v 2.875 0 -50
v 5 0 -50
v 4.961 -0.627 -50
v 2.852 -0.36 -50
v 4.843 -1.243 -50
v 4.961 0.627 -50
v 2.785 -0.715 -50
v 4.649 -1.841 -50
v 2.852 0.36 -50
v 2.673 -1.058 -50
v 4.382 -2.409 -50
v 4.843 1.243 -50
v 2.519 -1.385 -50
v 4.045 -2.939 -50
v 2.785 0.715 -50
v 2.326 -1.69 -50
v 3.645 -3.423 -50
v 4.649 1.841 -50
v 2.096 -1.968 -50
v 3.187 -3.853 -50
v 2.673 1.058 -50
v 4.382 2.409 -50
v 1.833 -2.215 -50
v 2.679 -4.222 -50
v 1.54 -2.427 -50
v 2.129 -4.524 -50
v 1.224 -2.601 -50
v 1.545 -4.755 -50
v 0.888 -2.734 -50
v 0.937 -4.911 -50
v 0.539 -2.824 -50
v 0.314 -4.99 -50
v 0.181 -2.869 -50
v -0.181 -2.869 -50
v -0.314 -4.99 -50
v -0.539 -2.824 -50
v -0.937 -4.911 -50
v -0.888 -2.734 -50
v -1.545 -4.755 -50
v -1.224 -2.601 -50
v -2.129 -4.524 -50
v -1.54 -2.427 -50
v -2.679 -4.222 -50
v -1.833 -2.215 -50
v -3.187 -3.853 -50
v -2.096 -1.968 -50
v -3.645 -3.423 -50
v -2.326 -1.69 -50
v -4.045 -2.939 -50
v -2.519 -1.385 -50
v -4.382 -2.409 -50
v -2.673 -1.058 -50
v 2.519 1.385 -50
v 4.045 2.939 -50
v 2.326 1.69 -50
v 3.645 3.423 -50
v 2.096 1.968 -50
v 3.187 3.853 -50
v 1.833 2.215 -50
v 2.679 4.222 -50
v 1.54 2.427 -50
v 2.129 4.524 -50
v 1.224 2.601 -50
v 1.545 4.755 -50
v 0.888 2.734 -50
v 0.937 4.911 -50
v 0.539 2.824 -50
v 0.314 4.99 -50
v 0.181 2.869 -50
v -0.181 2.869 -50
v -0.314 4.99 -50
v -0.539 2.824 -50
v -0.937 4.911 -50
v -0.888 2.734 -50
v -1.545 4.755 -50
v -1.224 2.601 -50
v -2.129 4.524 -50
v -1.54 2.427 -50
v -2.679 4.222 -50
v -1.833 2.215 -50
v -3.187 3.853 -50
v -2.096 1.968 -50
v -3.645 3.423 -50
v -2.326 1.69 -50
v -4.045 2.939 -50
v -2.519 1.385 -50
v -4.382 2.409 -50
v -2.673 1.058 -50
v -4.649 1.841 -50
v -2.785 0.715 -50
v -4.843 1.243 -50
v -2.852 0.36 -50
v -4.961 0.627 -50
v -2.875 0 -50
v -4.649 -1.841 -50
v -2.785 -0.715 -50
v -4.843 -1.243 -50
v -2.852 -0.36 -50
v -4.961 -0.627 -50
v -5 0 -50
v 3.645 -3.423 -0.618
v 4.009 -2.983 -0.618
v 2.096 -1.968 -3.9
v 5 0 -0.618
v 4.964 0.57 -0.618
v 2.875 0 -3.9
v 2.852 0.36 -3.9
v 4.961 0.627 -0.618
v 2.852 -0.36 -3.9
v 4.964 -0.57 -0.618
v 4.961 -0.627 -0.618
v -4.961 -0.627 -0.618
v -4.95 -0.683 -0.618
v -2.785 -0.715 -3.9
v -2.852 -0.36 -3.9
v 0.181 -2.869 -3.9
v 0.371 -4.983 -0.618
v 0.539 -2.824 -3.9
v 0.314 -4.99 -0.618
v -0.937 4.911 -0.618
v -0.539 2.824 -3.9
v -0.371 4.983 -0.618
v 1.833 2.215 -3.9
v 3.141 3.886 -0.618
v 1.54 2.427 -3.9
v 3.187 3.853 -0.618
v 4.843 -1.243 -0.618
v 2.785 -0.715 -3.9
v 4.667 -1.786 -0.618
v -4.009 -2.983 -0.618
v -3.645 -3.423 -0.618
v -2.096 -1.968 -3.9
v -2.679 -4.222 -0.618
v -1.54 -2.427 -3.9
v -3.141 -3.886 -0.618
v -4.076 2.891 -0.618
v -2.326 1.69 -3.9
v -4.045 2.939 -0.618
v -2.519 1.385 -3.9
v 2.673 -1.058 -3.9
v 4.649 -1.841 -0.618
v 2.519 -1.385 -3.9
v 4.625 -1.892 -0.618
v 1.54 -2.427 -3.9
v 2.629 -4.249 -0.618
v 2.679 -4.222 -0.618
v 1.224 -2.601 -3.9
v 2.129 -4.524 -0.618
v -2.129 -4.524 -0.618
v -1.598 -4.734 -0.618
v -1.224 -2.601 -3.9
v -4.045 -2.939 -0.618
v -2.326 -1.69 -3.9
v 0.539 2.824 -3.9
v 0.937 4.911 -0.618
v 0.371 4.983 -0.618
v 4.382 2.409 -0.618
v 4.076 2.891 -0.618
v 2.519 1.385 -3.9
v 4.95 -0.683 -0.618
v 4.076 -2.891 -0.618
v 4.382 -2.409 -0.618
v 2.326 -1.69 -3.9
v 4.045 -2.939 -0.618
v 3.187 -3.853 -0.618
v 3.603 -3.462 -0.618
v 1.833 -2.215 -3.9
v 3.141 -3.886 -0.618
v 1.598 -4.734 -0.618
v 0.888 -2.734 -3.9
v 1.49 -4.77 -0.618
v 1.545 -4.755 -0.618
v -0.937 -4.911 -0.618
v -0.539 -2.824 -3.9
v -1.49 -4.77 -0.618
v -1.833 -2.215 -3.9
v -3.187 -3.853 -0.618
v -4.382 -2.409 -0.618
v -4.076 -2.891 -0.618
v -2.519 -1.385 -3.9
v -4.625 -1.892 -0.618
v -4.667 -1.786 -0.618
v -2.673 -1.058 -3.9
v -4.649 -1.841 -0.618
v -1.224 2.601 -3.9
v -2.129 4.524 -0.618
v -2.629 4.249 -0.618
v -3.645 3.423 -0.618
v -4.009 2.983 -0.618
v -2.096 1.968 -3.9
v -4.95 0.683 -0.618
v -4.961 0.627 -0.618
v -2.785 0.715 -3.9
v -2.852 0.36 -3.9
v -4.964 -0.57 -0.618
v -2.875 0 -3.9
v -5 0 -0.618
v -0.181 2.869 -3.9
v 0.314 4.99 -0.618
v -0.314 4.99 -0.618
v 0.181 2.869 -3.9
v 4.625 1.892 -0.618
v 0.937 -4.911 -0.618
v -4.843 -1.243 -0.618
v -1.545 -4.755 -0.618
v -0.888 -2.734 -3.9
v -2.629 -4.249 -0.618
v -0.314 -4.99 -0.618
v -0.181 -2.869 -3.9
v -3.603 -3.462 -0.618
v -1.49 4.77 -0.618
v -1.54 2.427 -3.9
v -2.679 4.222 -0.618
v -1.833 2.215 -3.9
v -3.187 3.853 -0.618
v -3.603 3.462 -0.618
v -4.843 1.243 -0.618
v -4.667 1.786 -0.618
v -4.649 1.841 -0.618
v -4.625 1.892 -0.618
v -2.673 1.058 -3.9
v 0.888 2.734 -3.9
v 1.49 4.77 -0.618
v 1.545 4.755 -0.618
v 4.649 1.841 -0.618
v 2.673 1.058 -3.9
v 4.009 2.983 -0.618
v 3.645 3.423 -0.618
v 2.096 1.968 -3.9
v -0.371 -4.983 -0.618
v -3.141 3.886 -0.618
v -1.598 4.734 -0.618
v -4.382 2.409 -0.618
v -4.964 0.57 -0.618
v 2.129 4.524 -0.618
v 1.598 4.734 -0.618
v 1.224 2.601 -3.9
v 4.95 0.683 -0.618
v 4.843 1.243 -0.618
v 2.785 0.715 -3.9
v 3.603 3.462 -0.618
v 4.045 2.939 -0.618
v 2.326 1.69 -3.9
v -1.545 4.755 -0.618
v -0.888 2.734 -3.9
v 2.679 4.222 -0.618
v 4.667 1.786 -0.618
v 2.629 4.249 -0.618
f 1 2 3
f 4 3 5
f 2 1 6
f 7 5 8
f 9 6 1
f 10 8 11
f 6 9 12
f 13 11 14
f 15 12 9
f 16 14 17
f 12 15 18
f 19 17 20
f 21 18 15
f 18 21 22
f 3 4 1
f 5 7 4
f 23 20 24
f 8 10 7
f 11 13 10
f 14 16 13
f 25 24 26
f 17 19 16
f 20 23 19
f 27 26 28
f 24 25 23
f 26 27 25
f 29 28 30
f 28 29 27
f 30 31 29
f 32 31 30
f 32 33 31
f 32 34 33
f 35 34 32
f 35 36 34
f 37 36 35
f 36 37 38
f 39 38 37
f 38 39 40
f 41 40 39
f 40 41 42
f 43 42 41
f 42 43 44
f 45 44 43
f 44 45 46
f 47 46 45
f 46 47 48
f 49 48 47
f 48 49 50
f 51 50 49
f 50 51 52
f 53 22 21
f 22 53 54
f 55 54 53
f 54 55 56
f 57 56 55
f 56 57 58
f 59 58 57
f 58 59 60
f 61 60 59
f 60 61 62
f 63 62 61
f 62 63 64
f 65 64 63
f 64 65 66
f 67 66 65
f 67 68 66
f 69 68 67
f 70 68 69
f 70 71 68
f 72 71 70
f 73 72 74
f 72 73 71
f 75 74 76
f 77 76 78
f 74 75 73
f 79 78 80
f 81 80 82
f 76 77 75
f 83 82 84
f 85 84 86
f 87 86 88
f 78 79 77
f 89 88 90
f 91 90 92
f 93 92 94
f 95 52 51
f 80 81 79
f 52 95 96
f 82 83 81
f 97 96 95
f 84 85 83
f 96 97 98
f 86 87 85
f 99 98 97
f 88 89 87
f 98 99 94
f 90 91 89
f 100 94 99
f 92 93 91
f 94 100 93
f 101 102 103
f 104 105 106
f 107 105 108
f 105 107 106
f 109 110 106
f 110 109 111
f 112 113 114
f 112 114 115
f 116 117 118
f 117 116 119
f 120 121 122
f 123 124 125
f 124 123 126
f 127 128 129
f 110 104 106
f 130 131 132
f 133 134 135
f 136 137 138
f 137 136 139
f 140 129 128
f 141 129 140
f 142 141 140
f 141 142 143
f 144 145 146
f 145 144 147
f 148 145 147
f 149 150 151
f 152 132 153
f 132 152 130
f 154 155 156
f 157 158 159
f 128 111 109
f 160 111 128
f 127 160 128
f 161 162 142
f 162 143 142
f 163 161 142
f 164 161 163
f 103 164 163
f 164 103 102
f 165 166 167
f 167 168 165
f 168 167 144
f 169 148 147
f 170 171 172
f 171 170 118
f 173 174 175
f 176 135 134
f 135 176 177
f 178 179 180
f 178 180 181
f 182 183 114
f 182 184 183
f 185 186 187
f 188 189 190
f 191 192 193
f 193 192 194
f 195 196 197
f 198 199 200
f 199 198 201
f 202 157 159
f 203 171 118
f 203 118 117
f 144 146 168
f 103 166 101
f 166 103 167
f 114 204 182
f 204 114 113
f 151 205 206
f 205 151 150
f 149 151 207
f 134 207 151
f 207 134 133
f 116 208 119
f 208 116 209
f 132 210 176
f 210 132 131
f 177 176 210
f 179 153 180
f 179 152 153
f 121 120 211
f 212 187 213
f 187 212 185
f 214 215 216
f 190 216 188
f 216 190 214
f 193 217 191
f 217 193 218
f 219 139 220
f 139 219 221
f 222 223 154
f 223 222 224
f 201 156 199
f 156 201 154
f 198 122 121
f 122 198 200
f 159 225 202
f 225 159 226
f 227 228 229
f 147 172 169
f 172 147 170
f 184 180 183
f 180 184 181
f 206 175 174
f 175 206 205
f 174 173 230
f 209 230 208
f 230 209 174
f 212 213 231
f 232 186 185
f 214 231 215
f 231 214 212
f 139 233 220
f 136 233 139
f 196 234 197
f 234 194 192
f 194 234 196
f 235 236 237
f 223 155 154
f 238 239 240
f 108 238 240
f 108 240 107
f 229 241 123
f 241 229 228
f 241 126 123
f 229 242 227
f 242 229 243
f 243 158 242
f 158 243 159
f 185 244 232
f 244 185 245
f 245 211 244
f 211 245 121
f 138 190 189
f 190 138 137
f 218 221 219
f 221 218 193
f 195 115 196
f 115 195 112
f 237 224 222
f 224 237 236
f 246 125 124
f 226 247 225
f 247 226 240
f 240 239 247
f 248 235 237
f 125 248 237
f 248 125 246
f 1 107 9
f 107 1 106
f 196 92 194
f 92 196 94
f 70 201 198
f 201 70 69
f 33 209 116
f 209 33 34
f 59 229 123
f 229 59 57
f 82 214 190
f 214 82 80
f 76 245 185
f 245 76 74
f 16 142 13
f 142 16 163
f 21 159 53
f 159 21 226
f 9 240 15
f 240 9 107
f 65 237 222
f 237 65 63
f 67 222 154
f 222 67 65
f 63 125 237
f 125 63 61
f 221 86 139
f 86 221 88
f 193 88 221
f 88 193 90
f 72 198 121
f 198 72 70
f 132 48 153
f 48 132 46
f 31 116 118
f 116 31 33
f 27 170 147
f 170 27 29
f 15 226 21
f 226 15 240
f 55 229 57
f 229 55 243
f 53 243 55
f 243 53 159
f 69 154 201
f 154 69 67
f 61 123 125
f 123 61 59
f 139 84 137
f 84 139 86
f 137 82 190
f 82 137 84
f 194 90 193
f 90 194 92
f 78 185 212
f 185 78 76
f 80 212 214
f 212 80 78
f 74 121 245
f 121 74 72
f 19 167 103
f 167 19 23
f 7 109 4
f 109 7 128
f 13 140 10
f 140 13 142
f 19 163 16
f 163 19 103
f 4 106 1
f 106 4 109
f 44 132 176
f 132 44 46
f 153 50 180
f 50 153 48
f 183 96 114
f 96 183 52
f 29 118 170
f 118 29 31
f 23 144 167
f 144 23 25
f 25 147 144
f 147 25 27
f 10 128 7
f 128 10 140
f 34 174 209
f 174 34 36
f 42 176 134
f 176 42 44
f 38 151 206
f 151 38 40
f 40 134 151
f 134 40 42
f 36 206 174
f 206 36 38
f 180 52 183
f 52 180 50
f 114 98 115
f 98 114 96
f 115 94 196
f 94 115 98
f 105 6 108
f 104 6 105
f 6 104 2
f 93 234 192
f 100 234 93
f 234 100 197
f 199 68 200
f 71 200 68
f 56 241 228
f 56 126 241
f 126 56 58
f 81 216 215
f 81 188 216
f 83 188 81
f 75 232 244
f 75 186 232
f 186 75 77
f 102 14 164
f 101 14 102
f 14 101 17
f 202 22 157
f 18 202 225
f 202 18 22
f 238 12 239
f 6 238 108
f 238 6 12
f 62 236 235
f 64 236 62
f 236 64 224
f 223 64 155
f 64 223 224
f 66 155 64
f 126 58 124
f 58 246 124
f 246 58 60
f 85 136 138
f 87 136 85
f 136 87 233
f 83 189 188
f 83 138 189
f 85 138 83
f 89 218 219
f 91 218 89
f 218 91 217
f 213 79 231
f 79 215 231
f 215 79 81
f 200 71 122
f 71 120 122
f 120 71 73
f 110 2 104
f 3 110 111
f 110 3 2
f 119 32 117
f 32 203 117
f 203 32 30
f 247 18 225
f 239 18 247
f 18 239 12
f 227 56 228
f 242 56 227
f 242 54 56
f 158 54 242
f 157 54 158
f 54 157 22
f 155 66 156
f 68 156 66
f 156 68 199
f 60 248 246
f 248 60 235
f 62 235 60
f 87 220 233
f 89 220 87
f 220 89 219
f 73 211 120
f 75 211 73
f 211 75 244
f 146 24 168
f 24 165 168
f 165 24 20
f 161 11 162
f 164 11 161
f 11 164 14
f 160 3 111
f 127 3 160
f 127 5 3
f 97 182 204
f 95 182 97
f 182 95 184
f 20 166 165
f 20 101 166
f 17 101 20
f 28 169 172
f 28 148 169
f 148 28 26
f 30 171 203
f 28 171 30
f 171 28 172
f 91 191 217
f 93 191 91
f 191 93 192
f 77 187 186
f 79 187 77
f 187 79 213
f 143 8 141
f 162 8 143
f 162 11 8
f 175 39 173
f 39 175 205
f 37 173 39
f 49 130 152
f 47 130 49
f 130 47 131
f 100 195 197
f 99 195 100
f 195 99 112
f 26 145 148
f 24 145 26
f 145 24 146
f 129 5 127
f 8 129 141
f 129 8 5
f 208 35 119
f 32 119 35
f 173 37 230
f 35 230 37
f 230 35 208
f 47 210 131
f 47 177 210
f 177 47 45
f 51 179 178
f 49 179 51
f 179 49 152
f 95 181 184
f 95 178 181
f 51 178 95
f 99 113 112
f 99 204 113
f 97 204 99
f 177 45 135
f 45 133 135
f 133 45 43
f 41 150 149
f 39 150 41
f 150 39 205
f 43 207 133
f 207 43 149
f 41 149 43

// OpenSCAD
$fn = 50;


difference() {
	union() {
		translate(v = [0, 0, -50.0000000000]) {
			cylinder(h = 50, r = 5.0000000000);
		}
		cylinder(h = 0, r = 8.0000000000);
	}
	union() {
		translate(v = [0, 0, 0]) {
			rotate(a = [0, 0, 0]) {
				difference() {
					union() {
						#translate(v = [0, 0, -50.0000000000]) {
							cylinder(h = 50, r = 2.6000000000);
						}
						#translate(v = [0, 0, -3.9000000000]) {
							cylinder(h = 3.9000000000, r = 5.0000000000, r1 = 2.8750000000, r2 = 5.4000000000);
						}
						#translate(v = [0, 0, -50.0000000000]) {
							cylinder(h = 50, r = 2.8750000000);
						}
						#translate(v = [0, 0, -50.0000000000]) {
							cylinder(h = 50, r = 2.6000000000);
						}
					}
					union();
				}
			}
		}
	}
}
